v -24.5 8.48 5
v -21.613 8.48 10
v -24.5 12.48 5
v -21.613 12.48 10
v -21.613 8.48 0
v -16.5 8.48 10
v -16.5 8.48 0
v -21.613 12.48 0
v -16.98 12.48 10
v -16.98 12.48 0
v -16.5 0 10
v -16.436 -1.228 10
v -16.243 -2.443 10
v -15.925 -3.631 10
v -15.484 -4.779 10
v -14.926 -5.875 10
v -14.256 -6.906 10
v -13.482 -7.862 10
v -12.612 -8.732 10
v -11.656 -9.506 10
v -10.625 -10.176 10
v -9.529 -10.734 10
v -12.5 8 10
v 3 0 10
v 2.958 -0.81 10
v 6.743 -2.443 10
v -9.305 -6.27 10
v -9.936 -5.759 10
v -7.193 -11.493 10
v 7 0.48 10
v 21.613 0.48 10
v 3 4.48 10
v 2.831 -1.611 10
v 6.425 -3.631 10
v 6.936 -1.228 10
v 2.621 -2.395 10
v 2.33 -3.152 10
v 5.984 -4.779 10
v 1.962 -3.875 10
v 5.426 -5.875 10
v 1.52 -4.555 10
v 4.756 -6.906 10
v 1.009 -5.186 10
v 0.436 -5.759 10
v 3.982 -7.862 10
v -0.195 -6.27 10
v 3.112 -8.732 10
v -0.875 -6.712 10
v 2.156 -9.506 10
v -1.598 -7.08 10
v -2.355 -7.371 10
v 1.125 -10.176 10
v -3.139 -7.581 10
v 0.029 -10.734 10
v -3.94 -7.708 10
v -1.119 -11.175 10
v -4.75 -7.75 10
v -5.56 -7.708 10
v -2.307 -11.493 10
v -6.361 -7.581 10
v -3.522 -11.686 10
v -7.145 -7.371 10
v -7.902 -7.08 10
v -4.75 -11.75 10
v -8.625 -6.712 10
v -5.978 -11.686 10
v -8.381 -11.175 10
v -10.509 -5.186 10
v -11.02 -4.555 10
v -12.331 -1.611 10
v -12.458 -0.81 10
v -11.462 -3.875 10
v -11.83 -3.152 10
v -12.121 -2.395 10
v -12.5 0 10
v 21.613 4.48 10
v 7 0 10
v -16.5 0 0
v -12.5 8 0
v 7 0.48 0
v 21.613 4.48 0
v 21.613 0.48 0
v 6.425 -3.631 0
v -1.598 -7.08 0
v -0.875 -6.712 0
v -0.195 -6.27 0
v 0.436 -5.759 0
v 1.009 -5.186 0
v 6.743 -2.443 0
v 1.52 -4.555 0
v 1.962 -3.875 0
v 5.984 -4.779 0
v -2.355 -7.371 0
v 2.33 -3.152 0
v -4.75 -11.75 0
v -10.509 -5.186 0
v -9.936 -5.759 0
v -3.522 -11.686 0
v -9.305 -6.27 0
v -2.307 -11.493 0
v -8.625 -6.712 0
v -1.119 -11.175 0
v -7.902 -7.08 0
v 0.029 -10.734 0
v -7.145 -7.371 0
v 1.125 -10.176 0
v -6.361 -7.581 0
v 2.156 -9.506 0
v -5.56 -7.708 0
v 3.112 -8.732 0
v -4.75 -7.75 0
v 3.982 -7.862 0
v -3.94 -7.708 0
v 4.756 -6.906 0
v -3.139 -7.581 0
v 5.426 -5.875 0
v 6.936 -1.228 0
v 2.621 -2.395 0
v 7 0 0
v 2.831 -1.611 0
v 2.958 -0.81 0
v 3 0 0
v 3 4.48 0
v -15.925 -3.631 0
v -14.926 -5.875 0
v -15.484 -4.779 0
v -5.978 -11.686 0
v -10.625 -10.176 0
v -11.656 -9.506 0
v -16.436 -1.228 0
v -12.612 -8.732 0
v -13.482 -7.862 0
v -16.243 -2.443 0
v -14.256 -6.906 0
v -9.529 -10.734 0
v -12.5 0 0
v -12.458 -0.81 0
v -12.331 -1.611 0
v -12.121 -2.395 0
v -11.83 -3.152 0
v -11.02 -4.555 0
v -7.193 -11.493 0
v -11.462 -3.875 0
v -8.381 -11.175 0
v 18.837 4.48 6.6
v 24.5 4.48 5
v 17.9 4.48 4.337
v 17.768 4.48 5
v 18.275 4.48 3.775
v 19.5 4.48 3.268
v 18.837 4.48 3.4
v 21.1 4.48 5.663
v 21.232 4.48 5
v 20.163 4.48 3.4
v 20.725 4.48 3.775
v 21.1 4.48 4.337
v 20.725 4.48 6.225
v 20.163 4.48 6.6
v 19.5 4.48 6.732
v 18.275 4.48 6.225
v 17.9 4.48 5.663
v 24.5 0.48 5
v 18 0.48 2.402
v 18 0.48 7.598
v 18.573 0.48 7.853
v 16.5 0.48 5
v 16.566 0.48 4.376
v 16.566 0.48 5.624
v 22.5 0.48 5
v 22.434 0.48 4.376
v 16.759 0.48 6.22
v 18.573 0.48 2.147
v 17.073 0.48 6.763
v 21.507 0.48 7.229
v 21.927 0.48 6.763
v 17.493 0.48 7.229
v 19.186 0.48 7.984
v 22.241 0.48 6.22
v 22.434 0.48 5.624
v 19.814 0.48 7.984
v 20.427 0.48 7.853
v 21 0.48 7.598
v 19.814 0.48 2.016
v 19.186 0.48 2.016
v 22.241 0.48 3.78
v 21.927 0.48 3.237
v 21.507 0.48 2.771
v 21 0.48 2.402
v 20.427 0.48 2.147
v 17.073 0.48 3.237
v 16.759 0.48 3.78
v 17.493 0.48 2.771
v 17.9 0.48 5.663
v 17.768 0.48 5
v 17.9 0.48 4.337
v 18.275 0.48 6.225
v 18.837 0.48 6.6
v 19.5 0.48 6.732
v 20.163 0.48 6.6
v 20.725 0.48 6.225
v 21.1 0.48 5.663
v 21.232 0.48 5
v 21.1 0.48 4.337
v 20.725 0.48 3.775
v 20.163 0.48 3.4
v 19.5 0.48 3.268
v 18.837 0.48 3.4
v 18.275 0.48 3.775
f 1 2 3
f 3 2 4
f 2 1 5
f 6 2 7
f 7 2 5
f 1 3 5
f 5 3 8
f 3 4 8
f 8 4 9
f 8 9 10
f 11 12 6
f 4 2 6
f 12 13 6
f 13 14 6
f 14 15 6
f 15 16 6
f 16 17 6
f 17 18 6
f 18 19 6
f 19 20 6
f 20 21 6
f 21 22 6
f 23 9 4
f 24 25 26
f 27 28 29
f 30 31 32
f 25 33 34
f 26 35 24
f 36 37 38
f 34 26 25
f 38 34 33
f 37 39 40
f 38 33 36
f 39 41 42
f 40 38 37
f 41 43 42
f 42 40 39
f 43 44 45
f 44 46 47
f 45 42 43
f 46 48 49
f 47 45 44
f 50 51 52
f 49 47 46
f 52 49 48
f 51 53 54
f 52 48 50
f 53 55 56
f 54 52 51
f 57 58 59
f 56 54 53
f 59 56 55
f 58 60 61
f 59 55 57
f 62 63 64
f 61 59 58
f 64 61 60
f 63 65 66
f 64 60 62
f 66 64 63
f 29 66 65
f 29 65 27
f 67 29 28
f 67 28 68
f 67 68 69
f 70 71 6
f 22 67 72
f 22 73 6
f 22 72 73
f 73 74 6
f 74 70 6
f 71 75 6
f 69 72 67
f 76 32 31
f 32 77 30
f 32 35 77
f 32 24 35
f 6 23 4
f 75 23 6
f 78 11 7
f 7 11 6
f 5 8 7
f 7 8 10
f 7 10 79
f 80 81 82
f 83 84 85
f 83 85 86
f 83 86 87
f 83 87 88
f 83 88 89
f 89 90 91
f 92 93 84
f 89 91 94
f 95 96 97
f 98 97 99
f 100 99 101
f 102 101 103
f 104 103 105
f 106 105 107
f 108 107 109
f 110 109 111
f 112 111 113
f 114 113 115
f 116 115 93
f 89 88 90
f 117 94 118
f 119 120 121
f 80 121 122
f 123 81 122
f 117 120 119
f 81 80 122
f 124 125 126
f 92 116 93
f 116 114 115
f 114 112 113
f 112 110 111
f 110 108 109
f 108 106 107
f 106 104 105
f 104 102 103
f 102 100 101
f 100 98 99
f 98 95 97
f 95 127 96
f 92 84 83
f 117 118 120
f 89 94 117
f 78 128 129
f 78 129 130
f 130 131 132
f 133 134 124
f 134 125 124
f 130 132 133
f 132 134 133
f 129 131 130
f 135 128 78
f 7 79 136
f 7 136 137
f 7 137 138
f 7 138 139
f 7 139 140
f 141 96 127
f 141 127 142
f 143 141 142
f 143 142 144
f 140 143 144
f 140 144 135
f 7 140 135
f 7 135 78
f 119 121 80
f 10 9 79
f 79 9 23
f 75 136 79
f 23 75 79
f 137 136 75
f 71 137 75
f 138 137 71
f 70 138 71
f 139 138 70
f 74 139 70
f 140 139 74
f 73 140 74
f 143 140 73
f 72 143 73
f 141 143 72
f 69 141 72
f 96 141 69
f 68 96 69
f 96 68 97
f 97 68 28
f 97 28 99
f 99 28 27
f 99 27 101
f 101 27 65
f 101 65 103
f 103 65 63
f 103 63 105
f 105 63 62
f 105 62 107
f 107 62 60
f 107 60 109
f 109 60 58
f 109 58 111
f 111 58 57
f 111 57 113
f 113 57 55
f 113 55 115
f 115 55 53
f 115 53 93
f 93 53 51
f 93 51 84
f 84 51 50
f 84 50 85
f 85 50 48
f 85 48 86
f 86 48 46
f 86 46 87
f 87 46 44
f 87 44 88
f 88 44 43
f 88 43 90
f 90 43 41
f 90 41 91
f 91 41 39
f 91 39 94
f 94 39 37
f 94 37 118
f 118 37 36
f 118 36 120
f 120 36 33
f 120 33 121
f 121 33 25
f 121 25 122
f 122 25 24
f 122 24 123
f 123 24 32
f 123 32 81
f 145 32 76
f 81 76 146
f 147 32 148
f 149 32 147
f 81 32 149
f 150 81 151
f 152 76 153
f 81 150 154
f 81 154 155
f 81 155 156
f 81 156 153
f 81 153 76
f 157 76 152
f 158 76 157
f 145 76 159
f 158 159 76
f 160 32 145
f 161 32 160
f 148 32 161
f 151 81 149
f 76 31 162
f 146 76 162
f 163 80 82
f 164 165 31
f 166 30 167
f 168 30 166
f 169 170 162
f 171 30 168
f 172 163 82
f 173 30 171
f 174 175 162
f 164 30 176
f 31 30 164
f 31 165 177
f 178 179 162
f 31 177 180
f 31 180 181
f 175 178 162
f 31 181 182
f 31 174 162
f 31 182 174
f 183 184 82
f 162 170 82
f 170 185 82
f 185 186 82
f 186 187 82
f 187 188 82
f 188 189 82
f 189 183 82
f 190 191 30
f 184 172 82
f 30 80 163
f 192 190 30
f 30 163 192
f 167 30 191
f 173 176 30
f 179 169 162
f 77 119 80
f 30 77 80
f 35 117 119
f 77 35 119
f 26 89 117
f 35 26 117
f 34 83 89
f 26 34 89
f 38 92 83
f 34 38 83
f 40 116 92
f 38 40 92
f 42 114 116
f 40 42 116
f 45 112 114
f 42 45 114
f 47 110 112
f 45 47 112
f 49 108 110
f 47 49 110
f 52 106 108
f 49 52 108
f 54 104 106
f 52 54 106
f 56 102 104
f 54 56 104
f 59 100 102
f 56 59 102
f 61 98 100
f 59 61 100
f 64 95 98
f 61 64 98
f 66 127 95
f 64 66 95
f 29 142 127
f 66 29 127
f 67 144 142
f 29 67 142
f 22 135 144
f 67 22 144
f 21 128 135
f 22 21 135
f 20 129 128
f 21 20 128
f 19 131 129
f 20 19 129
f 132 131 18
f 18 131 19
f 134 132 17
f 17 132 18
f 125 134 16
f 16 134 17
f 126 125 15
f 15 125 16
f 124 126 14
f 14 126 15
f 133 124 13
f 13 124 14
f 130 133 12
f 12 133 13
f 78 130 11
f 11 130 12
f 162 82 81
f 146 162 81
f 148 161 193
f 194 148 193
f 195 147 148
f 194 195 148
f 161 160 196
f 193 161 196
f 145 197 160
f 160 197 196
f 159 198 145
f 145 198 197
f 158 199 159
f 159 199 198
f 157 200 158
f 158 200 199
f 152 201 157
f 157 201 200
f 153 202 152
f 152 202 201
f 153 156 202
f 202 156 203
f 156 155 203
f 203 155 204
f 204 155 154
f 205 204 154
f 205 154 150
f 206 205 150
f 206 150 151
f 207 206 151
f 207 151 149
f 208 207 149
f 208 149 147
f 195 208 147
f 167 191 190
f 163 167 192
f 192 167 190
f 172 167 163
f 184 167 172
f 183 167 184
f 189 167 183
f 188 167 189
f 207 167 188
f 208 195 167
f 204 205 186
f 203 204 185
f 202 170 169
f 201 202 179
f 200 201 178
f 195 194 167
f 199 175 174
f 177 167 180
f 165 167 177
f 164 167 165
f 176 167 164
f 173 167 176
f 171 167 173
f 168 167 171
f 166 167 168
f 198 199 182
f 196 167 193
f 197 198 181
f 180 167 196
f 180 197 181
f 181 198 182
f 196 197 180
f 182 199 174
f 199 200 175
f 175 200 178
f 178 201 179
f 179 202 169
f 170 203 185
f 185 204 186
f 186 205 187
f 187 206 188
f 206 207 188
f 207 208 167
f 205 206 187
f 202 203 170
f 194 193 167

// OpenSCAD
include <wallace2.scad>;
y_bearing_retainer();
$fn=60;
module y_bearing_retainer() intersection() {
	difference() {
		linear_extrude(height = 10, convexity = 5) difference() {
			union() {
				intersection() {
					translate([-yz_motor_distance / 2 + bearing_size / 2, 0, 0]) circle(bearing_size / 2 + 4);
					translate([-yz_motor_distance / 2 + bearing_size / 2 - bearing_size / 2 - 4, -bearing_size, 0]) square([bearing_size + 8, bearing_size]);
				}
				translate([-yz_motor_distance / 2 + bearing_size / 2 - bearing_size / 2 - 4, 0, 0]) #square([bearing_size + 8, bearing_size * sqrt(2) / 4 - 1]);
				translate([10, bearing_size * sqrt(2) / 4 - 3, 0]) square([yz_motor_distance + motor_casing - motor_screw_spacing + 10, 4], center = true);
				// hook
				translate([-25, bearing_size * sqrt(2) / 4 - 3+8, 0]) square([yz_motor_distance + motor_casing - motor_screw_spacing + 10, 4], center = true);
				// hook to retainer
				translate([-11.5, bearing_size * sqrt(2) / 4 - 3+4, 0]) #square([10, 4], center = true);
			}
			translate([-yz_motor_distance / 2 + bearing_size / 2, 0, 0]) circle(bearing_size / 2);
			translate([-yz_motor_distance / 2 + bearing_size / 2 - bearing_size / 2, 0, 0]) square(bearing_size);
			translate([-yz_motor_distance / 2 + bearing_size / 2 - bearing_size / 2+4, 4, 0]) rotate([0,0,45]) #square(bearing_size);
		}
		//screw holes
		for(side = [1]) translate([side * (yz_motor_distance + motor_casing - motor_screw_spacing) / 2, 0, 5]) rotate(90) rotate([90, 0, 90]) {
			cylinder(r = m3_size * da6, h = bearing_size, center = true, $fn = 16);
			translate([0, 0, bearing_size * sqrt(2) / 4 - 5]) rotate([180, 0, 0]) cylinder(r = m3_size, h = bearing_size, $fn = 30);
		}
	}
	#translate([0, 0, 5]) rotate(90) rotate([90, 0, 90]) cylinder(r = (yz_motor_distance + motor_casing - motor_screw_spacing + 10) / 2, h = bearing_size + 10, center = true, $fn = 6);
}
